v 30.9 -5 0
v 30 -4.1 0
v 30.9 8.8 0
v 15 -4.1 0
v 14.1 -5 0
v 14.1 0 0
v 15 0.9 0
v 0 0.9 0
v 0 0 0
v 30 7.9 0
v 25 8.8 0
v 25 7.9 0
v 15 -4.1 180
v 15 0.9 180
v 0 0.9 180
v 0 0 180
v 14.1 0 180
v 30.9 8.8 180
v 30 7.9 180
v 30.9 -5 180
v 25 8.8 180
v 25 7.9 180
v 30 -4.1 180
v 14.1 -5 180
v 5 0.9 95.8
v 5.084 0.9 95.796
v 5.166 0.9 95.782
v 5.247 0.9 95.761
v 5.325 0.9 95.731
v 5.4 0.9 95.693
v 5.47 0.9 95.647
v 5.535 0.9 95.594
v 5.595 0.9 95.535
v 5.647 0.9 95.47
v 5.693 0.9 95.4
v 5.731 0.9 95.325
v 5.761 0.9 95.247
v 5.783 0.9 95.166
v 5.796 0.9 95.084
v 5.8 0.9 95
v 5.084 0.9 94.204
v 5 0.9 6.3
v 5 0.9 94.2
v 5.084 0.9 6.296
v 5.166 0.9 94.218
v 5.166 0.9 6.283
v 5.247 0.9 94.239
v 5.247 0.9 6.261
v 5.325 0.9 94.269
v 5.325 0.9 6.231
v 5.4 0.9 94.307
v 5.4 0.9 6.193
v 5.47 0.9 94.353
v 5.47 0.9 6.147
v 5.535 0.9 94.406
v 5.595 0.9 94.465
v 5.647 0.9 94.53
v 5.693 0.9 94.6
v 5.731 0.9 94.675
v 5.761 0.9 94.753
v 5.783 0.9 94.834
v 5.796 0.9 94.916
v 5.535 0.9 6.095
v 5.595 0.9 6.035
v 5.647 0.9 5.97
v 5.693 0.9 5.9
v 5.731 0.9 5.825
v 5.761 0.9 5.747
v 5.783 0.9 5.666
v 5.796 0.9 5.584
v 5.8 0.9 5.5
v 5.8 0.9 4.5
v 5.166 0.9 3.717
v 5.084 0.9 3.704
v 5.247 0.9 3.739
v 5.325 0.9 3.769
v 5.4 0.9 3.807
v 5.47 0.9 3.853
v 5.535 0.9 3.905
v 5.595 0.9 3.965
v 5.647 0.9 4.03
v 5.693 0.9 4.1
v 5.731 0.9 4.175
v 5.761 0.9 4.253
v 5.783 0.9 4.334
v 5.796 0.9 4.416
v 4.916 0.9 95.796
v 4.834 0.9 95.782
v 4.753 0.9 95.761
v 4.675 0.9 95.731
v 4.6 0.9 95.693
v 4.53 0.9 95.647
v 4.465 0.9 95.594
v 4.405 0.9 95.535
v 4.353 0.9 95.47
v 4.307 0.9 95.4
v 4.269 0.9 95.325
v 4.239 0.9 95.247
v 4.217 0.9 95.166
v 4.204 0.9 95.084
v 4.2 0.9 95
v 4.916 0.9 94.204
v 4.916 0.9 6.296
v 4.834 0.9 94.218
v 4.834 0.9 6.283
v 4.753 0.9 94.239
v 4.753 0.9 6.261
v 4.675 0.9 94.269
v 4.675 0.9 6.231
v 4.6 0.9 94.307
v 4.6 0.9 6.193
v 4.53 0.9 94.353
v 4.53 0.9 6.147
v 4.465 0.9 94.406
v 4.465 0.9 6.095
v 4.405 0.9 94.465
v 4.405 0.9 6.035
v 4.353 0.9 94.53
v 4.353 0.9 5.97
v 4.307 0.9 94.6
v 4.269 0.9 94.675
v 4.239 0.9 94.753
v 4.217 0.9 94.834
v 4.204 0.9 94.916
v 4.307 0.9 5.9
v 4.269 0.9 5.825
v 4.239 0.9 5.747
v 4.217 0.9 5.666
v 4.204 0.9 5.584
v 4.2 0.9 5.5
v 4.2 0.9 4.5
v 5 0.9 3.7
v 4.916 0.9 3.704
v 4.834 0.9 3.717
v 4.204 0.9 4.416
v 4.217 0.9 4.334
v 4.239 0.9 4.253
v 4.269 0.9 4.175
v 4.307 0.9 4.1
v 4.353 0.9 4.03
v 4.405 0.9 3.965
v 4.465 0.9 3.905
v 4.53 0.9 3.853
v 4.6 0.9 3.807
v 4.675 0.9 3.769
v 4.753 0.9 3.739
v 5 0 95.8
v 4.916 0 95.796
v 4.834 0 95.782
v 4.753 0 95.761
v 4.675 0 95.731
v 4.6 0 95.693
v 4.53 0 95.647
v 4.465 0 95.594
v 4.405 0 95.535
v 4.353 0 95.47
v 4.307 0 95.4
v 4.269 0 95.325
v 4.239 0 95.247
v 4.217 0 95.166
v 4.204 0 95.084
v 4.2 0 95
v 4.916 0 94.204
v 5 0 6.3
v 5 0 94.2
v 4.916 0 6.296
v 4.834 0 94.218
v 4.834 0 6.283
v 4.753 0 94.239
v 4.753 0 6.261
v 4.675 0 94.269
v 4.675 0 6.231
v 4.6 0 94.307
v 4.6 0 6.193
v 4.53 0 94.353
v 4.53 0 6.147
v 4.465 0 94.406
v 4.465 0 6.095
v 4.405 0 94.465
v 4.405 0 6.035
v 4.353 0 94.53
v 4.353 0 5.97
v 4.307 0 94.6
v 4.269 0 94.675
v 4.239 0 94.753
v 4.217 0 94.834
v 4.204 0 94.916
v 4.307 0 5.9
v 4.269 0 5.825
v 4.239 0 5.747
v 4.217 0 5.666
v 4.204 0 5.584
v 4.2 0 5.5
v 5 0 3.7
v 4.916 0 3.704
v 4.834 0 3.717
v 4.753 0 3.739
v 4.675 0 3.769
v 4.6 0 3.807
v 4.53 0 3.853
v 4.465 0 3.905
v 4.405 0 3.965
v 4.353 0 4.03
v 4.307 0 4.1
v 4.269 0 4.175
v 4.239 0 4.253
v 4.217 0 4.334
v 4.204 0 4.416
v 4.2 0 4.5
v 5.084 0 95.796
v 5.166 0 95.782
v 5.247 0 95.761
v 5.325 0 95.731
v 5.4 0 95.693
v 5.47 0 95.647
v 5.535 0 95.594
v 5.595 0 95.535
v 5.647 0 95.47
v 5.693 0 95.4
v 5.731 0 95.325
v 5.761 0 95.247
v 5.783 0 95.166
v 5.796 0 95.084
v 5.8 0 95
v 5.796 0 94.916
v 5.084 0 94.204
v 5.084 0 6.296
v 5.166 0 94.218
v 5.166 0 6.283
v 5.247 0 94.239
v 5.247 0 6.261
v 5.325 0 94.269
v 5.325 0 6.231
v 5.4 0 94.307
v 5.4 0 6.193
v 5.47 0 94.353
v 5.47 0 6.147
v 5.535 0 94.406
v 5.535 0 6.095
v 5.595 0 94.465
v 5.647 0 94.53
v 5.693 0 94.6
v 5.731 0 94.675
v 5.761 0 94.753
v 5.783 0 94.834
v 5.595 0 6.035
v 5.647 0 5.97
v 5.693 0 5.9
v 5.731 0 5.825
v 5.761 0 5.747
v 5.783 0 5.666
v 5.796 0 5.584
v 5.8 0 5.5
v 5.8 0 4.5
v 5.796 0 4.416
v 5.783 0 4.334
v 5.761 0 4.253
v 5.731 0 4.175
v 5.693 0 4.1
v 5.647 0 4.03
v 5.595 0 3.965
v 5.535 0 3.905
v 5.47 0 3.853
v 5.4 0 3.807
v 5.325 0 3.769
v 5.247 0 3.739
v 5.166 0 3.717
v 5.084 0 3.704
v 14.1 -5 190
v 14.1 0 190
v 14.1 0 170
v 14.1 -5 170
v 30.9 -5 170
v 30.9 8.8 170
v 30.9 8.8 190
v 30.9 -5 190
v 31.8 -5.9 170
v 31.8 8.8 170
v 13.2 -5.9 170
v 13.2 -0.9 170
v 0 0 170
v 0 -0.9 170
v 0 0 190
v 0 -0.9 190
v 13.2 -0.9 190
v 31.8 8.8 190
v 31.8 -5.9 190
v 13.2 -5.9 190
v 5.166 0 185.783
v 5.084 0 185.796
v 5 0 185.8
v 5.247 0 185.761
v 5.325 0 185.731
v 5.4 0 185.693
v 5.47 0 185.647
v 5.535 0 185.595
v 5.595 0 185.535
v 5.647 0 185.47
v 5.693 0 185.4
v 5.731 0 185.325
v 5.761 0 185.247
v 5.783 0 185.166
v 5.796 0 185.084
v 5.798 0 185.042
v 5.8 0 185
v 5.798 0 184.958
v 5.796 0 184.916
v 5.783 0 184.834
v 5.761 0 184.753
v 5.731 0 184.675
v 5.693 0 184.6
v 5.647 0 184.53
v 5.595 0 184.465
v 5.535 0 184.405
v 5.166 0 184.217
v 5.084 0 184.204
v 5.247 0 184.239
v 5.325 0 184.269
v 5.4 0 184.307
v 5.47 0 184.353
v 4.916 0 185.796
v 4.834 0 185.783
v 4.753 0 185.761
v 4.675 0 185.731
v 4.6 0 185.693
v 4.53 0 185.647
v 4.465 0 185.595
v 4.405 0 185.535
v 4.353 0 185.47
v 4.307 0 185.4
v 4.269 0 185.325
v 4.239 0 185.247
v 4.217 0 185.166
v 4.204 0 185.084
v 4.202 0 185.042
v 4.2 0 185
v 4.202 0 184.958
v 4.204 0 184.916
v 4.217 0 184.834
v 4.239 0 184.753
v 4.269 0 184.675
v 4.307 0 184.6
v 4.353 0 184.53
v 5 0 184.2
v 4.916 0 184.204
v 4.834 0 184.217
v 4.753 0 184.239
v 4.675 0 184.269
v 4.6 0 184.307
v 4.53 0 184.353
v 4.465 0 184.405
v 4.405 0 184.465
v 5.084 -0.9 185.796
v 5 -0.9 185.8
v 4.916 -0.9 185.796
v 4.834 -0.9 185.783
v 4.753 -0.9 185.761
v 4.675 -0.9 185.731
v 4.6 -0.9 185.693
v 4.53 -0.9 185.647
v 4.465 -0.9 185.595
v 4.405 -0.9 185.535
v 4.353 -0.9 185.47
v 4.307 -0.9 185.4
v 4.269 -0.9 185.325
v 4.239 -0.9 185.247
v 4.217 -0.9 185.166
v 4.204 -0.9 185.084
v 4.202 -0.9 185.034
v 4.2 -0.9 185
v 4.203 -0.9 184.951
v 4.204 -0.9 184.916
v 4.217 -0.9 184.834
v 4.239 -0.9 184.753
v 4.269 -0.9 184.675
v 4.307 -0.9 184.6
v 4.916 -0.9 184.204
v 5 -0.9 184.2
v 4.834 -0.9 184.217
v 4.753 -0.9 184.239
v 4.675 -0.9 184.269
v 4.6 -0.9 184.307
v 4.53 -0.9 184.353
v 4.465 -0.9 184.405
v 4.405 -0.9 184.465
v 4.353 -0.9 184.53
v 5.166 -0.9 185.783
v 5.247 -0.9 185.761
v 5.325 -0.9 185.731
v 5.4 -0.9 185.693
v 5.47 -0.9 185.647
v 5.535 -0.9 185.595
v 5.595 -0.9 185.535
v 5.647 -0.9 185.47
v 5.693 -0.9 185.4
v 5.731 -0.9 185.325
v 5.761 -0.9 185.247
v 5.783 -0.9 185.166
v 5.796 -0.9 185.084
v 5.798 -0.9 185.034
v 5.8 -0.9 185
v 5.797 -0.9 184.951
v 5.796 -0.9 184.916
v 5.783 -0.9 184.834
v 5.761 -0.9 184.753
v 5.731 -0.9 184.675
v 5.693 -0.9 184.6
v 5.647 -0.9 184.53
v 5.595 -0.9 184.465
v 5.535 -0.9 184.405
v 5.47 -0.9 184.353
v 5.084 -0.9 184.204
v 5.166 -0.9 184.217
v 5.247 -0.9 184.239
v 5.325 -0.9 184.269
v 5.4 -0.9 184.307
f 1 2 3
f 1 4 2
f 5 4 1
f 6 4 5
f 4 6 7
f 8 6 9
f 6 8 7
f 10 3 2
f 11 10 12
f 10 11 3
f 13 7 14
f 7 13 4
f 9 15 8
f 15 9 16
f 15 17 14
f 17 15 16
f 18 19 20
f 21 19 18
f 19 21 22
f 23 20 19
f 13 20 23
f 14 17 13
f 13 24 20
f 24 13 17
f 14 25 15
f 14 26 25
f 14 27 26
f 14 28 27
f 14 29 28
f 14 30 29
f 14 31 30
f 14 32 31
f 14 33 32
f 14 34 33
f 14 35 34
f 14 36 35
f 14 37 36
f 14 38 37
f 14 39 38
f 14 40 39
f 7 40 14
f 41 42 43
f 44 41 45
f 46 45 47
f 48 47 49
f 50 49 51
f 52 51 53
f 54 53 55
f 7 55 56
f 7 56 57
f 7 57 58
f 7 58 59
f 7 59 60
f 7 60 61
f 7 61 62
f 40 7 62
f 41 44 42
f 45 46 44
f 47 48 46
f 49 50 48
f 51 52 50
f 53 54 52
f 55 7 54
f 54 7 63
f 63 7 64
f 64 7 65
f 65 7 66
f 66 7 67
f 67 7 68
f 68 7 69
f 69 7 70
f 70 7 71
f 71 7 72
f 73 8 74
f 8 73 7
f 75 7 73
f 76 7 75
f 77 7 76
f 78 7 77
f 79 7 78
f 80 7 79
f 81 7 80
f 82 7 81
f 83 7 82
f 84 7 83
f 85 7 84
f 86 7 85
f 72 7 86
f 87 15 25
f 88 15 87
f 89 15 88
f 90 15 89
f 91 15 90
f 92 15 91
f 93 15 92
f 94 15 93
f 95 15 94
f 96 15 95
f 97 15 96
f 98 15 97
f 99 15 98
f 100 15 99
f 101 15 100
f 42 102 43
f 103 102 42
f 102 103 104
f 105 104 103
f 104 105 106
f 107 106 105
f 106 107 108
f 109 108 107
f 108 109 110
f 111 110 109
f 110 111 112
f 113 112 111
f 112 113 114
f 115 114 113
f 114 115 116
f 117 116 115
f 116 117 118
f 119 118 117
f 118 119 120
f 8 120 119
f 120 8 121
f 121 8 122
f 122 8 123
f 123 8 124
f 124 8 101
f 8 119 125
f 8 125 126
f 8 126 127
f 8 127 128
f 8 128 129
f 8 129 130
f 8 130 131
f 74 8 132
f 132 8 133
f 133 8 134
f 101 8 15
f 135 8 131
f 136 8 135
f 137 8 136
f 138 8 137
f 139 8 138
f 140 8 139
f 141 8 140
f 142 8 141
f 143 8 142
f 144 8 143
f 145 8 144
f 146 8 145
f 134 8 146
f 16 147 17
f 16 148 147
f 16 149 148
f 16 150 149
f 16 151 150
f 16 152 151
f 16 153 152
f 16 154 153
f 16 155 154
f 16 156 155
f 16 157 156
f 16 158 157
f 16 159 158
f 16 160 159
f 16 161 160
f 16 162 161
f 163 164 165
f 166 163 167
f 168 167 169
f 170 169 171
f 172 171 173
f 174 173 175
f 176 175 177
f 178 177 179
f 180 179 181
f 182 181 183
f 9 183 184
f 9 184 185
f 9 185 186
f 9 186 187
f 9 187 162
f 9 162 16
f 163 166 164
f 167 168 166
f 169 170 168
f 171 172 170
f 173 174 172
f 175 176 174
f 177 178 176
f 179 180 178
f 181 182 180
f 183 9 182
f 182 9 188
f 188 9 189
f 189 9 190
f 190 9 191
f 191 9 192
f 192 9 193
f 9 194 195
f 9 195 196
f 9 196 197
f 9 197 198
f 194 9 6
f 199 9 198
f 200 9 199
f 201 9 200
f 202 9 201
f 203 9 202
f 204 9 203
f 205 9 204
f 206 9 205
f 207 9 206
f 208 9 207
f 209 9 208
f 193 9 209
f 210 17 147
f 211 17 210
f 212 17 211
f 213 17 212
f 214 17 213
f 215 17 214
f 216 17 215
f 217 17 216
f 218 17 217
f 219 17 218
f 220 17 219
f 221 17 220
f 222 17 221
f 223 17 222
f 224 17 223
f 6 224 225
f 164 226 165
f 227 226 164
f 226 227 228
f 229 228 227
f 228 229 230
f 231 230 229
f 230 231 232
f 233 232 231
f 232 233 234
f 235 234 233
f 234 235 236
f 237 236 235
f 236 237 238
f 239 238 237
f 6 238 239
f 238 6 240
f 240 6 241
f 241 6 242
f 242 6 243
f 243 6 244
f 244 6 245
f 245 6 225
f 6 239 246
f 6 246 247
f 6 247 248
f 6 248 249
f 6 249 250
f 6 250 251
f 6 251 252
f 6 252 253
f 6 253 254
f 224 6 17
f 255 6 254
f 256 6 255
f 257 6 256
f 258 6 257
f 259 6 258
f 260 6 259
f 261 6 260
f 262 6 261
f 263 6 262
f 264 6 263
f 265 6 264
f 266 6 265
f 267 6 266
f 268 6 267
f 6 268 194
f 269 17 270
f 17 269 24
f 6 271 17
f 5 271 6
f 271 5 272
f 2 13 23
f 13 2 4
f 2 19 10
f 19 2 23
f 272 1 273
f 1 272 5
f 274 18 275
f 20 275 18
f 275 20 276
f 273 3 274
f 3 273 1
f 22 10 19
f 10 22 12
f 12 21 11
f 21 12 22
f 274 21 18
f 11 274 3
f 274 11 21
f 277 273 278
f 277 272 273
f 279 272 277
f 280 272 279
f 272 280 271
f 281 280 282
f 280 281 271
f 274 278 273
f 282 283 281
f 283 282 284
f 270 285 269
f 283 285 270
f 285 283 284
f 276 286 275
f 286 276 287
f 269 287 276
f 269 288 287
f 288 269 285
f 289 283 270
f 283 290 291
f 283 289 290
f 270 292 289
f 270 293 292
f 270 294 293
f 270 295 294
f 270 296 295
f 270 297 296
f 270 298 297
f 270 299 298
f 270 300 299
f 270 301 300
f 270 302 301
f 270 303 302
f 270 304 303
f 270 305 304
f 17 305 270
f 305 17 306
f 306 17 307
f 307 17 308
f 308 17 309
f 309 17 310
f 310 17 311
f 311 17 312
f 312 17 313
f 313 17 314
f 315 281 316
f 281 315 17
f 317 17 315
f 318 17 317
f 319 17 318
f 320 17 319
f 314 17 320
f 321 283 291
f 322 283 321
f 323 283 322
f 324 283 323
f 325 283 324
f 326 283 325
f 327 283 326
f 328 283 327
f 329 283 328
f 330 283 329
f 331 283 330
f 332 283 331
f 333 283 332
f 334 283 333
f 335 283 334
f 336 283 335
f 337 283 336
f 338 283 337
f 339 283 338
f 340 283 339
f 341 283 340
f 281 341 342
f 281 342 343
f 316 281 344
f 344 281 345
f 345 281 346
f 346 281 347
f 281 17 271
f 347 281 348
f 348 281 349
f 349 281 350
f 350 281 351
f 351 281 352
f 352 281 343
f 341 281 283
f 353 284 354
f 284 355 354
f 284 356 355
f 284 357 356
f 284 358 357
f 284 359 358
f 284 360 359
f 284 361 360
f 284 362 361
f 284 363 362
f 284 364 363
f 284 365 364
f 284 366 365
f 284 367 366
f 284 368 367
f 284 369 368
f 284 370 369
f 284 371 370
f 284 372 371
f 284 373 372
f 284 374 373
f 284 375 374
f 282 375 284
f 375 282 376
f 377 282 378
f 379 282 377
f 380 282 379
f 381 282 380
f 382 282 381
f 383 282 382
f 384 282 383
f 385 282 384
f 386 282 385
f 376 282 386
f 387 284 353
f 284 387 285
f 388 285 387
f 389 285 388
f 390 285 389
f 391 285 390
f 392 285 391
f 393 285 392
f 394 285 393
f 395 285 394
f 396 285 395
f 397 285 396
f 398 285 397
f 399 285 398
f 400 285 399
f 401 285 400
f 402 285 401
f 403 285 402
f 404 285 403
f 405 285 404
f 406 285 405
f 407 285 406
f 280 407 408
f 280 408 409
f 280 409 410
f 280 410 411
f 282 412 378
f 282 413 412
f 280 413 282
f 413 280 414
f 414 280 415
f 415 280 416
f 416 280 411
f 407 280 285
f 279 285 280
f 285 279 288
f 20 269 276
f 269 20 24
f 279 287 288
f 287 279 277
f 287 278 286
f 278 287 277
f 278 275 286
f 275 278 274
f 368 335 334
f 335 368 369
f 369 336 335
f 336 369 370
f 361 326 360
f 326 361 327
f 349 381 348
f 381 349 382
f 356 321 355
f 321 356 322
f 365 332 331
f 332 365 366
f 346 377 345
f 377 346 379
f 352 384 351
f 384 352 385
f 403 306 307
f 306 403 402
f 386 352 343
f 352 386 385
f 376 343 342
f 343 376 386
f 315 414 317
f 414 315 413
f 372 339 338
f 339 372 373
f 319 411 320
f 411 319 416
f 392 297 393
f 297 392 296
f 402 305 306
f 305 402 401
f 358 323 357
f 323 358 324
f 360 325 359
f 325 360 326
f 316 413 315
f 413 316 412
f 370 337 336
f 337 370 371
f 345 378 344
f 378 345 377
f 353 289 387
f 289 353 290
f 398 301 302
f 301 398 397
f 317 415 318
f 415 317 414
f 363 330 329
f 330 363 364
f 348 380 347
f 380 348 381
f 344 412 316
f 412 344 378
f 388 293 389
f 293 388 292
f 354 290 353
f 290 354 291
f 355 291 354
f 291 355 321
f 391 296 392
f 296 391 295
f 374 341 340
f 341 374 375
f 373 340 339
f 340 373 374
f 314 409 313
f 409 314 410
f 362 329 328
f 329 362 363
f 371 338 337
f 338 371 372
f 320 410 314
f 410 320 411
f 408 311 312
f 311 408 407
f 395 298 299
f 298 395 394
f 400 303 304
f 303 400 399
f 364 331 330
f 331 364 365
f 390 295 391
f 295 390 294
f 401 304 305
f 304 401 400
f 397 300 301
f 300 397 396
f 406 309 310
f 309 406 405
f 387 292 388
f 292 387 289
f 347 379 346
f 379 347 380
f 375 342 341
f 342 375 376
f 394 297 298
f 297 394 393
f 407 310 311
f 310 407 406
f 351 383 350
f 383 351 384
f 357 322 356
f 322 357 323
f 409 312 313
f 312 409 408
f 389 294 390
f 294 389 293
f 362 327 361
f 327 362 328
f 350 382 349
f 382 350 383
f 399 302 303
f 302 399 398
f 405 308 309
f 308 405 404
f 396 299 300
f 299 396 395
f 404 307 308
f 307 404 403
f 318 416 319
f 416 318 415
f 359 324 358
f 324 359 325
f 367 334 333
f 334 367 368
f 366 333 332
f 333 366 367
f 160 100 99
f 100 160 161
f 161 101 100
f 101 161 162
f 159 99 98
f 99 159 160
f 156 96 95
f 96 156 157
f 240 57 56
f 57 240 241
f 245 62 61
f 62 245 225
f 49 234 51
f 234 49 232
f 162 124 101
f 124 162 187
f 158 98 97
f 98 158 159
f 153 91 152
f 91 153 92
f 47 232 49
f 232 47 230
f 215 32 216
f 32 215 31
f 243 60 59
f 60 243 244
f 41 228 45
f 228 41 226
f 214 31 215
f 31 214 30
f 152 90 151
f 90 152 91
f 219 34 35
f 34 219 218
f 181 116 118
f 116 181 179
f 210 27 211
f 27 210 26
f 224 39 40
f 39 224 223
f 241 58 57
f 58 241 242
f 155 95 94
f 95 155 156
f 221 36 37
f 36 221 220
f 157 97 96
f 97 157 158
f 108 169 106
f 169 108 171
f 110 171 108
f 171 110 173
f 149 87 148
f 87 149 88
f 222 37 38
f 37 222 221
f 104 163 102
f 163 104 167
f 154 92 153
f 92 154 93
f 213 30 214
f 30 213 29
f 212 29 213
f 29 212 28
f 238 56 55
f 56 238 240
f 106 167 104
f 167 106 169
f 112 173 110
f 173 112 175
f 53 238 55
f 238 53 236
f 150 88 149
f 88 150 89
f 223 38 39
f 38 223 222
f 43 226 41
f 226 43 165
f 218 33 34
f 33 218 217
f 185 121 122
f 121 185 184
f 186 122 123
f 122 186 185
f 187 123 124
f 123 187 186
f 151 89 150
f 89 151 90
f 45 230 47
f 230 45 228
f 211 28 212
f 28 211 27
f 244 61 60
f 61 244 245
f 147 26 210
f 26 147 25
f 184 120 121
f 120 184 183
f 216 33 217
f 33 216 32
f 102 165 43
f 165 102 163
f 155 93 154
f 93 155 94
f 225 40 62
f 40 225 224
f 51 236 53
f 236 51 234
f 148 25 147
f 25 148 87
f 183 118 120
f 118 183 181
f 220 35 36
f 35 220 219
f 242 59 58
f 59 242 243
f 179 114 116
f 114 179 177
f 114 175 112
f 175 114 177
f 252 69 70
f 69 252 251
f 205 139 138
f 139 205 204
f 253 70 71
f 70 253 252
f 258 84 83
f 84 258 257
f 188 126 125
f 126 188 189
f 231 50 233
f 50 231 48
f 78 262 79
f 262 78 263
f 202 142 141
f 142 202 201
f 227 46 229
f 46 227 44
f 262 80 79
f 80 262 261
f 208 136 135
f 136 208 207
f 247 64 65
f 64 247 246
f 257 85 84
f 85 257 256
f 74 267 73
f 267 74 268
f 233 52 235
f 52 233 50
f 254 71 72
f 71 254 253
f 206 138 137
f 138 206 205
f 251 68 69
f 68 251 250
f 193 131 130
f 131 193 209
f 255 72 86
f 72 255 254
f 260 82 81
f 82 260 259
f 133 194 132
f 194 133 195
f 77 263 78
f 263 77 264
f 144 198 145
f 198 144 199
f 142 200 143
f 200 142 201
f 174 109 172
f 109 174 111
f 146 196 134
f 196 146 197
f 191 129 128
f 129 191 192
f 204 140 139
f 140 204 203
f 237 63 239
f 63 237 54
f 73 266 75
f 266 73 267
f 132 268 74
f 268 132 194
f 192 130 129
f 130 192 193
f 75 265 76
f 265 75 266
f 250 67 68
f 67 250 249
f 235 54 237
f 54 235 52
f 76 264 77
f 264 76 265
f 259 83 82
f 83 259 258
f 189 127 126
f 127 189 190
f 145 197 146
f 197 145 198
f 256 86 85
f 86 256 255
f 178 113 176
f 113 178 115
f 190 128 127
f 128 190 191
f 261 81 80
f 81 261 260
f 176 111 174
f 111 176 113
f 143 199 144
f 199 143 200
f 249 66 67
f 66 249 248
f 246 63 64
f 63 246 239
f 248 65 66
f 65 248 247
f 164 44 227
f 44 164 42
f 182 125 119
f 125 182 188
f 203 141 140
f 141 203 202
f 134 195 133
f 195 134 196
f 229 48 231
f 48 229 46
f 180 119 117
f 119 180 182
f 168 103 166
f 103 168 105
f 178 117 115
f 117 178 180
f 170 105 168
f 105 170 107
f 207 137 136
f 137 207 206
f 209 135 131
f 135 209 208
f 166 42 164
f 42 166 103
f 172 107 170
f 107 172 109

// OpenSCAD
//6.5mm deep
//23mm to hole
//
$fn=60;
length=180;
lip=20;
base_height=15;
base_over=5;
wire_height=15;
top_depth=12;
wrap_height=5;
thickness=.9;

rotate([0,90,0]) translate([-length,0,0]) union() {
    difference() {
        union() {
            //*
            union() {
                cube([length,thickness,base_height]);
                translate([0,-base_over+thickness,base_height-thickness]) cube([length,base_over,thickness]);
                translate([0,-base_over,base_height-thickness]) cube([length,thickness,wire_height+thickness]);
                translate([0,-base_over,base_height+wire_height]) cube([length,top_depth+thickness,thickness]);
                translate([0,top_depth-base_over+thickness,base_height+wire_height-wrap_height]) cube([length,thickness,wrap_height+thickness]);
            }
            //*/

            //*
            translate([-lip/2,-thickness,0]) union() {
                cube([lip,thickness,base_height-thickness]);
                translate([0,-base_over+thickness,base_height-thickness*2]) cube([lip,base_over,thickness]);
                translate([0,-base_over,base_height-thickness*2]) cube([lip,thickness,wire_height+thickness*3]);
                translate([0,-base_over,base_height+wire_height+thickness]) cube([lip,top_depth+thickness*3,thickness]);
            }
            //*/
        }
        translate([-5,-5,5]) rotate([0,90,90]) cylinder(d=1.6,h=10);
        translate([(length-10)/2,-5,5]) rotate([0,90,90]) cylinder(d=1.6,h=10);
        hull() {
            translate([length-4.5,-5,5]) rotate([0,90,90]) cylinder(d=1.6,h=10);
            translate([length-5.5,-5,5]) rotate([0,90,90]) cylinder(d=1.6,h=10);
        }
    }
}

/*
   difference() {
   union() {
   cube([length,1,8]);
   cube([length,25,1]);
   }
   translate([5,21,-5]) cylinder(d=2,h=10);
   if (length > 20) {
   for(i=[1:floor(length/20)-1]) {
   translate([20*i,21,-5]) cylinder(d=2,h=10);
   }
   }
   translate([length-5,21,-5]) cylinder(d=2,h=10);
   }
   */
